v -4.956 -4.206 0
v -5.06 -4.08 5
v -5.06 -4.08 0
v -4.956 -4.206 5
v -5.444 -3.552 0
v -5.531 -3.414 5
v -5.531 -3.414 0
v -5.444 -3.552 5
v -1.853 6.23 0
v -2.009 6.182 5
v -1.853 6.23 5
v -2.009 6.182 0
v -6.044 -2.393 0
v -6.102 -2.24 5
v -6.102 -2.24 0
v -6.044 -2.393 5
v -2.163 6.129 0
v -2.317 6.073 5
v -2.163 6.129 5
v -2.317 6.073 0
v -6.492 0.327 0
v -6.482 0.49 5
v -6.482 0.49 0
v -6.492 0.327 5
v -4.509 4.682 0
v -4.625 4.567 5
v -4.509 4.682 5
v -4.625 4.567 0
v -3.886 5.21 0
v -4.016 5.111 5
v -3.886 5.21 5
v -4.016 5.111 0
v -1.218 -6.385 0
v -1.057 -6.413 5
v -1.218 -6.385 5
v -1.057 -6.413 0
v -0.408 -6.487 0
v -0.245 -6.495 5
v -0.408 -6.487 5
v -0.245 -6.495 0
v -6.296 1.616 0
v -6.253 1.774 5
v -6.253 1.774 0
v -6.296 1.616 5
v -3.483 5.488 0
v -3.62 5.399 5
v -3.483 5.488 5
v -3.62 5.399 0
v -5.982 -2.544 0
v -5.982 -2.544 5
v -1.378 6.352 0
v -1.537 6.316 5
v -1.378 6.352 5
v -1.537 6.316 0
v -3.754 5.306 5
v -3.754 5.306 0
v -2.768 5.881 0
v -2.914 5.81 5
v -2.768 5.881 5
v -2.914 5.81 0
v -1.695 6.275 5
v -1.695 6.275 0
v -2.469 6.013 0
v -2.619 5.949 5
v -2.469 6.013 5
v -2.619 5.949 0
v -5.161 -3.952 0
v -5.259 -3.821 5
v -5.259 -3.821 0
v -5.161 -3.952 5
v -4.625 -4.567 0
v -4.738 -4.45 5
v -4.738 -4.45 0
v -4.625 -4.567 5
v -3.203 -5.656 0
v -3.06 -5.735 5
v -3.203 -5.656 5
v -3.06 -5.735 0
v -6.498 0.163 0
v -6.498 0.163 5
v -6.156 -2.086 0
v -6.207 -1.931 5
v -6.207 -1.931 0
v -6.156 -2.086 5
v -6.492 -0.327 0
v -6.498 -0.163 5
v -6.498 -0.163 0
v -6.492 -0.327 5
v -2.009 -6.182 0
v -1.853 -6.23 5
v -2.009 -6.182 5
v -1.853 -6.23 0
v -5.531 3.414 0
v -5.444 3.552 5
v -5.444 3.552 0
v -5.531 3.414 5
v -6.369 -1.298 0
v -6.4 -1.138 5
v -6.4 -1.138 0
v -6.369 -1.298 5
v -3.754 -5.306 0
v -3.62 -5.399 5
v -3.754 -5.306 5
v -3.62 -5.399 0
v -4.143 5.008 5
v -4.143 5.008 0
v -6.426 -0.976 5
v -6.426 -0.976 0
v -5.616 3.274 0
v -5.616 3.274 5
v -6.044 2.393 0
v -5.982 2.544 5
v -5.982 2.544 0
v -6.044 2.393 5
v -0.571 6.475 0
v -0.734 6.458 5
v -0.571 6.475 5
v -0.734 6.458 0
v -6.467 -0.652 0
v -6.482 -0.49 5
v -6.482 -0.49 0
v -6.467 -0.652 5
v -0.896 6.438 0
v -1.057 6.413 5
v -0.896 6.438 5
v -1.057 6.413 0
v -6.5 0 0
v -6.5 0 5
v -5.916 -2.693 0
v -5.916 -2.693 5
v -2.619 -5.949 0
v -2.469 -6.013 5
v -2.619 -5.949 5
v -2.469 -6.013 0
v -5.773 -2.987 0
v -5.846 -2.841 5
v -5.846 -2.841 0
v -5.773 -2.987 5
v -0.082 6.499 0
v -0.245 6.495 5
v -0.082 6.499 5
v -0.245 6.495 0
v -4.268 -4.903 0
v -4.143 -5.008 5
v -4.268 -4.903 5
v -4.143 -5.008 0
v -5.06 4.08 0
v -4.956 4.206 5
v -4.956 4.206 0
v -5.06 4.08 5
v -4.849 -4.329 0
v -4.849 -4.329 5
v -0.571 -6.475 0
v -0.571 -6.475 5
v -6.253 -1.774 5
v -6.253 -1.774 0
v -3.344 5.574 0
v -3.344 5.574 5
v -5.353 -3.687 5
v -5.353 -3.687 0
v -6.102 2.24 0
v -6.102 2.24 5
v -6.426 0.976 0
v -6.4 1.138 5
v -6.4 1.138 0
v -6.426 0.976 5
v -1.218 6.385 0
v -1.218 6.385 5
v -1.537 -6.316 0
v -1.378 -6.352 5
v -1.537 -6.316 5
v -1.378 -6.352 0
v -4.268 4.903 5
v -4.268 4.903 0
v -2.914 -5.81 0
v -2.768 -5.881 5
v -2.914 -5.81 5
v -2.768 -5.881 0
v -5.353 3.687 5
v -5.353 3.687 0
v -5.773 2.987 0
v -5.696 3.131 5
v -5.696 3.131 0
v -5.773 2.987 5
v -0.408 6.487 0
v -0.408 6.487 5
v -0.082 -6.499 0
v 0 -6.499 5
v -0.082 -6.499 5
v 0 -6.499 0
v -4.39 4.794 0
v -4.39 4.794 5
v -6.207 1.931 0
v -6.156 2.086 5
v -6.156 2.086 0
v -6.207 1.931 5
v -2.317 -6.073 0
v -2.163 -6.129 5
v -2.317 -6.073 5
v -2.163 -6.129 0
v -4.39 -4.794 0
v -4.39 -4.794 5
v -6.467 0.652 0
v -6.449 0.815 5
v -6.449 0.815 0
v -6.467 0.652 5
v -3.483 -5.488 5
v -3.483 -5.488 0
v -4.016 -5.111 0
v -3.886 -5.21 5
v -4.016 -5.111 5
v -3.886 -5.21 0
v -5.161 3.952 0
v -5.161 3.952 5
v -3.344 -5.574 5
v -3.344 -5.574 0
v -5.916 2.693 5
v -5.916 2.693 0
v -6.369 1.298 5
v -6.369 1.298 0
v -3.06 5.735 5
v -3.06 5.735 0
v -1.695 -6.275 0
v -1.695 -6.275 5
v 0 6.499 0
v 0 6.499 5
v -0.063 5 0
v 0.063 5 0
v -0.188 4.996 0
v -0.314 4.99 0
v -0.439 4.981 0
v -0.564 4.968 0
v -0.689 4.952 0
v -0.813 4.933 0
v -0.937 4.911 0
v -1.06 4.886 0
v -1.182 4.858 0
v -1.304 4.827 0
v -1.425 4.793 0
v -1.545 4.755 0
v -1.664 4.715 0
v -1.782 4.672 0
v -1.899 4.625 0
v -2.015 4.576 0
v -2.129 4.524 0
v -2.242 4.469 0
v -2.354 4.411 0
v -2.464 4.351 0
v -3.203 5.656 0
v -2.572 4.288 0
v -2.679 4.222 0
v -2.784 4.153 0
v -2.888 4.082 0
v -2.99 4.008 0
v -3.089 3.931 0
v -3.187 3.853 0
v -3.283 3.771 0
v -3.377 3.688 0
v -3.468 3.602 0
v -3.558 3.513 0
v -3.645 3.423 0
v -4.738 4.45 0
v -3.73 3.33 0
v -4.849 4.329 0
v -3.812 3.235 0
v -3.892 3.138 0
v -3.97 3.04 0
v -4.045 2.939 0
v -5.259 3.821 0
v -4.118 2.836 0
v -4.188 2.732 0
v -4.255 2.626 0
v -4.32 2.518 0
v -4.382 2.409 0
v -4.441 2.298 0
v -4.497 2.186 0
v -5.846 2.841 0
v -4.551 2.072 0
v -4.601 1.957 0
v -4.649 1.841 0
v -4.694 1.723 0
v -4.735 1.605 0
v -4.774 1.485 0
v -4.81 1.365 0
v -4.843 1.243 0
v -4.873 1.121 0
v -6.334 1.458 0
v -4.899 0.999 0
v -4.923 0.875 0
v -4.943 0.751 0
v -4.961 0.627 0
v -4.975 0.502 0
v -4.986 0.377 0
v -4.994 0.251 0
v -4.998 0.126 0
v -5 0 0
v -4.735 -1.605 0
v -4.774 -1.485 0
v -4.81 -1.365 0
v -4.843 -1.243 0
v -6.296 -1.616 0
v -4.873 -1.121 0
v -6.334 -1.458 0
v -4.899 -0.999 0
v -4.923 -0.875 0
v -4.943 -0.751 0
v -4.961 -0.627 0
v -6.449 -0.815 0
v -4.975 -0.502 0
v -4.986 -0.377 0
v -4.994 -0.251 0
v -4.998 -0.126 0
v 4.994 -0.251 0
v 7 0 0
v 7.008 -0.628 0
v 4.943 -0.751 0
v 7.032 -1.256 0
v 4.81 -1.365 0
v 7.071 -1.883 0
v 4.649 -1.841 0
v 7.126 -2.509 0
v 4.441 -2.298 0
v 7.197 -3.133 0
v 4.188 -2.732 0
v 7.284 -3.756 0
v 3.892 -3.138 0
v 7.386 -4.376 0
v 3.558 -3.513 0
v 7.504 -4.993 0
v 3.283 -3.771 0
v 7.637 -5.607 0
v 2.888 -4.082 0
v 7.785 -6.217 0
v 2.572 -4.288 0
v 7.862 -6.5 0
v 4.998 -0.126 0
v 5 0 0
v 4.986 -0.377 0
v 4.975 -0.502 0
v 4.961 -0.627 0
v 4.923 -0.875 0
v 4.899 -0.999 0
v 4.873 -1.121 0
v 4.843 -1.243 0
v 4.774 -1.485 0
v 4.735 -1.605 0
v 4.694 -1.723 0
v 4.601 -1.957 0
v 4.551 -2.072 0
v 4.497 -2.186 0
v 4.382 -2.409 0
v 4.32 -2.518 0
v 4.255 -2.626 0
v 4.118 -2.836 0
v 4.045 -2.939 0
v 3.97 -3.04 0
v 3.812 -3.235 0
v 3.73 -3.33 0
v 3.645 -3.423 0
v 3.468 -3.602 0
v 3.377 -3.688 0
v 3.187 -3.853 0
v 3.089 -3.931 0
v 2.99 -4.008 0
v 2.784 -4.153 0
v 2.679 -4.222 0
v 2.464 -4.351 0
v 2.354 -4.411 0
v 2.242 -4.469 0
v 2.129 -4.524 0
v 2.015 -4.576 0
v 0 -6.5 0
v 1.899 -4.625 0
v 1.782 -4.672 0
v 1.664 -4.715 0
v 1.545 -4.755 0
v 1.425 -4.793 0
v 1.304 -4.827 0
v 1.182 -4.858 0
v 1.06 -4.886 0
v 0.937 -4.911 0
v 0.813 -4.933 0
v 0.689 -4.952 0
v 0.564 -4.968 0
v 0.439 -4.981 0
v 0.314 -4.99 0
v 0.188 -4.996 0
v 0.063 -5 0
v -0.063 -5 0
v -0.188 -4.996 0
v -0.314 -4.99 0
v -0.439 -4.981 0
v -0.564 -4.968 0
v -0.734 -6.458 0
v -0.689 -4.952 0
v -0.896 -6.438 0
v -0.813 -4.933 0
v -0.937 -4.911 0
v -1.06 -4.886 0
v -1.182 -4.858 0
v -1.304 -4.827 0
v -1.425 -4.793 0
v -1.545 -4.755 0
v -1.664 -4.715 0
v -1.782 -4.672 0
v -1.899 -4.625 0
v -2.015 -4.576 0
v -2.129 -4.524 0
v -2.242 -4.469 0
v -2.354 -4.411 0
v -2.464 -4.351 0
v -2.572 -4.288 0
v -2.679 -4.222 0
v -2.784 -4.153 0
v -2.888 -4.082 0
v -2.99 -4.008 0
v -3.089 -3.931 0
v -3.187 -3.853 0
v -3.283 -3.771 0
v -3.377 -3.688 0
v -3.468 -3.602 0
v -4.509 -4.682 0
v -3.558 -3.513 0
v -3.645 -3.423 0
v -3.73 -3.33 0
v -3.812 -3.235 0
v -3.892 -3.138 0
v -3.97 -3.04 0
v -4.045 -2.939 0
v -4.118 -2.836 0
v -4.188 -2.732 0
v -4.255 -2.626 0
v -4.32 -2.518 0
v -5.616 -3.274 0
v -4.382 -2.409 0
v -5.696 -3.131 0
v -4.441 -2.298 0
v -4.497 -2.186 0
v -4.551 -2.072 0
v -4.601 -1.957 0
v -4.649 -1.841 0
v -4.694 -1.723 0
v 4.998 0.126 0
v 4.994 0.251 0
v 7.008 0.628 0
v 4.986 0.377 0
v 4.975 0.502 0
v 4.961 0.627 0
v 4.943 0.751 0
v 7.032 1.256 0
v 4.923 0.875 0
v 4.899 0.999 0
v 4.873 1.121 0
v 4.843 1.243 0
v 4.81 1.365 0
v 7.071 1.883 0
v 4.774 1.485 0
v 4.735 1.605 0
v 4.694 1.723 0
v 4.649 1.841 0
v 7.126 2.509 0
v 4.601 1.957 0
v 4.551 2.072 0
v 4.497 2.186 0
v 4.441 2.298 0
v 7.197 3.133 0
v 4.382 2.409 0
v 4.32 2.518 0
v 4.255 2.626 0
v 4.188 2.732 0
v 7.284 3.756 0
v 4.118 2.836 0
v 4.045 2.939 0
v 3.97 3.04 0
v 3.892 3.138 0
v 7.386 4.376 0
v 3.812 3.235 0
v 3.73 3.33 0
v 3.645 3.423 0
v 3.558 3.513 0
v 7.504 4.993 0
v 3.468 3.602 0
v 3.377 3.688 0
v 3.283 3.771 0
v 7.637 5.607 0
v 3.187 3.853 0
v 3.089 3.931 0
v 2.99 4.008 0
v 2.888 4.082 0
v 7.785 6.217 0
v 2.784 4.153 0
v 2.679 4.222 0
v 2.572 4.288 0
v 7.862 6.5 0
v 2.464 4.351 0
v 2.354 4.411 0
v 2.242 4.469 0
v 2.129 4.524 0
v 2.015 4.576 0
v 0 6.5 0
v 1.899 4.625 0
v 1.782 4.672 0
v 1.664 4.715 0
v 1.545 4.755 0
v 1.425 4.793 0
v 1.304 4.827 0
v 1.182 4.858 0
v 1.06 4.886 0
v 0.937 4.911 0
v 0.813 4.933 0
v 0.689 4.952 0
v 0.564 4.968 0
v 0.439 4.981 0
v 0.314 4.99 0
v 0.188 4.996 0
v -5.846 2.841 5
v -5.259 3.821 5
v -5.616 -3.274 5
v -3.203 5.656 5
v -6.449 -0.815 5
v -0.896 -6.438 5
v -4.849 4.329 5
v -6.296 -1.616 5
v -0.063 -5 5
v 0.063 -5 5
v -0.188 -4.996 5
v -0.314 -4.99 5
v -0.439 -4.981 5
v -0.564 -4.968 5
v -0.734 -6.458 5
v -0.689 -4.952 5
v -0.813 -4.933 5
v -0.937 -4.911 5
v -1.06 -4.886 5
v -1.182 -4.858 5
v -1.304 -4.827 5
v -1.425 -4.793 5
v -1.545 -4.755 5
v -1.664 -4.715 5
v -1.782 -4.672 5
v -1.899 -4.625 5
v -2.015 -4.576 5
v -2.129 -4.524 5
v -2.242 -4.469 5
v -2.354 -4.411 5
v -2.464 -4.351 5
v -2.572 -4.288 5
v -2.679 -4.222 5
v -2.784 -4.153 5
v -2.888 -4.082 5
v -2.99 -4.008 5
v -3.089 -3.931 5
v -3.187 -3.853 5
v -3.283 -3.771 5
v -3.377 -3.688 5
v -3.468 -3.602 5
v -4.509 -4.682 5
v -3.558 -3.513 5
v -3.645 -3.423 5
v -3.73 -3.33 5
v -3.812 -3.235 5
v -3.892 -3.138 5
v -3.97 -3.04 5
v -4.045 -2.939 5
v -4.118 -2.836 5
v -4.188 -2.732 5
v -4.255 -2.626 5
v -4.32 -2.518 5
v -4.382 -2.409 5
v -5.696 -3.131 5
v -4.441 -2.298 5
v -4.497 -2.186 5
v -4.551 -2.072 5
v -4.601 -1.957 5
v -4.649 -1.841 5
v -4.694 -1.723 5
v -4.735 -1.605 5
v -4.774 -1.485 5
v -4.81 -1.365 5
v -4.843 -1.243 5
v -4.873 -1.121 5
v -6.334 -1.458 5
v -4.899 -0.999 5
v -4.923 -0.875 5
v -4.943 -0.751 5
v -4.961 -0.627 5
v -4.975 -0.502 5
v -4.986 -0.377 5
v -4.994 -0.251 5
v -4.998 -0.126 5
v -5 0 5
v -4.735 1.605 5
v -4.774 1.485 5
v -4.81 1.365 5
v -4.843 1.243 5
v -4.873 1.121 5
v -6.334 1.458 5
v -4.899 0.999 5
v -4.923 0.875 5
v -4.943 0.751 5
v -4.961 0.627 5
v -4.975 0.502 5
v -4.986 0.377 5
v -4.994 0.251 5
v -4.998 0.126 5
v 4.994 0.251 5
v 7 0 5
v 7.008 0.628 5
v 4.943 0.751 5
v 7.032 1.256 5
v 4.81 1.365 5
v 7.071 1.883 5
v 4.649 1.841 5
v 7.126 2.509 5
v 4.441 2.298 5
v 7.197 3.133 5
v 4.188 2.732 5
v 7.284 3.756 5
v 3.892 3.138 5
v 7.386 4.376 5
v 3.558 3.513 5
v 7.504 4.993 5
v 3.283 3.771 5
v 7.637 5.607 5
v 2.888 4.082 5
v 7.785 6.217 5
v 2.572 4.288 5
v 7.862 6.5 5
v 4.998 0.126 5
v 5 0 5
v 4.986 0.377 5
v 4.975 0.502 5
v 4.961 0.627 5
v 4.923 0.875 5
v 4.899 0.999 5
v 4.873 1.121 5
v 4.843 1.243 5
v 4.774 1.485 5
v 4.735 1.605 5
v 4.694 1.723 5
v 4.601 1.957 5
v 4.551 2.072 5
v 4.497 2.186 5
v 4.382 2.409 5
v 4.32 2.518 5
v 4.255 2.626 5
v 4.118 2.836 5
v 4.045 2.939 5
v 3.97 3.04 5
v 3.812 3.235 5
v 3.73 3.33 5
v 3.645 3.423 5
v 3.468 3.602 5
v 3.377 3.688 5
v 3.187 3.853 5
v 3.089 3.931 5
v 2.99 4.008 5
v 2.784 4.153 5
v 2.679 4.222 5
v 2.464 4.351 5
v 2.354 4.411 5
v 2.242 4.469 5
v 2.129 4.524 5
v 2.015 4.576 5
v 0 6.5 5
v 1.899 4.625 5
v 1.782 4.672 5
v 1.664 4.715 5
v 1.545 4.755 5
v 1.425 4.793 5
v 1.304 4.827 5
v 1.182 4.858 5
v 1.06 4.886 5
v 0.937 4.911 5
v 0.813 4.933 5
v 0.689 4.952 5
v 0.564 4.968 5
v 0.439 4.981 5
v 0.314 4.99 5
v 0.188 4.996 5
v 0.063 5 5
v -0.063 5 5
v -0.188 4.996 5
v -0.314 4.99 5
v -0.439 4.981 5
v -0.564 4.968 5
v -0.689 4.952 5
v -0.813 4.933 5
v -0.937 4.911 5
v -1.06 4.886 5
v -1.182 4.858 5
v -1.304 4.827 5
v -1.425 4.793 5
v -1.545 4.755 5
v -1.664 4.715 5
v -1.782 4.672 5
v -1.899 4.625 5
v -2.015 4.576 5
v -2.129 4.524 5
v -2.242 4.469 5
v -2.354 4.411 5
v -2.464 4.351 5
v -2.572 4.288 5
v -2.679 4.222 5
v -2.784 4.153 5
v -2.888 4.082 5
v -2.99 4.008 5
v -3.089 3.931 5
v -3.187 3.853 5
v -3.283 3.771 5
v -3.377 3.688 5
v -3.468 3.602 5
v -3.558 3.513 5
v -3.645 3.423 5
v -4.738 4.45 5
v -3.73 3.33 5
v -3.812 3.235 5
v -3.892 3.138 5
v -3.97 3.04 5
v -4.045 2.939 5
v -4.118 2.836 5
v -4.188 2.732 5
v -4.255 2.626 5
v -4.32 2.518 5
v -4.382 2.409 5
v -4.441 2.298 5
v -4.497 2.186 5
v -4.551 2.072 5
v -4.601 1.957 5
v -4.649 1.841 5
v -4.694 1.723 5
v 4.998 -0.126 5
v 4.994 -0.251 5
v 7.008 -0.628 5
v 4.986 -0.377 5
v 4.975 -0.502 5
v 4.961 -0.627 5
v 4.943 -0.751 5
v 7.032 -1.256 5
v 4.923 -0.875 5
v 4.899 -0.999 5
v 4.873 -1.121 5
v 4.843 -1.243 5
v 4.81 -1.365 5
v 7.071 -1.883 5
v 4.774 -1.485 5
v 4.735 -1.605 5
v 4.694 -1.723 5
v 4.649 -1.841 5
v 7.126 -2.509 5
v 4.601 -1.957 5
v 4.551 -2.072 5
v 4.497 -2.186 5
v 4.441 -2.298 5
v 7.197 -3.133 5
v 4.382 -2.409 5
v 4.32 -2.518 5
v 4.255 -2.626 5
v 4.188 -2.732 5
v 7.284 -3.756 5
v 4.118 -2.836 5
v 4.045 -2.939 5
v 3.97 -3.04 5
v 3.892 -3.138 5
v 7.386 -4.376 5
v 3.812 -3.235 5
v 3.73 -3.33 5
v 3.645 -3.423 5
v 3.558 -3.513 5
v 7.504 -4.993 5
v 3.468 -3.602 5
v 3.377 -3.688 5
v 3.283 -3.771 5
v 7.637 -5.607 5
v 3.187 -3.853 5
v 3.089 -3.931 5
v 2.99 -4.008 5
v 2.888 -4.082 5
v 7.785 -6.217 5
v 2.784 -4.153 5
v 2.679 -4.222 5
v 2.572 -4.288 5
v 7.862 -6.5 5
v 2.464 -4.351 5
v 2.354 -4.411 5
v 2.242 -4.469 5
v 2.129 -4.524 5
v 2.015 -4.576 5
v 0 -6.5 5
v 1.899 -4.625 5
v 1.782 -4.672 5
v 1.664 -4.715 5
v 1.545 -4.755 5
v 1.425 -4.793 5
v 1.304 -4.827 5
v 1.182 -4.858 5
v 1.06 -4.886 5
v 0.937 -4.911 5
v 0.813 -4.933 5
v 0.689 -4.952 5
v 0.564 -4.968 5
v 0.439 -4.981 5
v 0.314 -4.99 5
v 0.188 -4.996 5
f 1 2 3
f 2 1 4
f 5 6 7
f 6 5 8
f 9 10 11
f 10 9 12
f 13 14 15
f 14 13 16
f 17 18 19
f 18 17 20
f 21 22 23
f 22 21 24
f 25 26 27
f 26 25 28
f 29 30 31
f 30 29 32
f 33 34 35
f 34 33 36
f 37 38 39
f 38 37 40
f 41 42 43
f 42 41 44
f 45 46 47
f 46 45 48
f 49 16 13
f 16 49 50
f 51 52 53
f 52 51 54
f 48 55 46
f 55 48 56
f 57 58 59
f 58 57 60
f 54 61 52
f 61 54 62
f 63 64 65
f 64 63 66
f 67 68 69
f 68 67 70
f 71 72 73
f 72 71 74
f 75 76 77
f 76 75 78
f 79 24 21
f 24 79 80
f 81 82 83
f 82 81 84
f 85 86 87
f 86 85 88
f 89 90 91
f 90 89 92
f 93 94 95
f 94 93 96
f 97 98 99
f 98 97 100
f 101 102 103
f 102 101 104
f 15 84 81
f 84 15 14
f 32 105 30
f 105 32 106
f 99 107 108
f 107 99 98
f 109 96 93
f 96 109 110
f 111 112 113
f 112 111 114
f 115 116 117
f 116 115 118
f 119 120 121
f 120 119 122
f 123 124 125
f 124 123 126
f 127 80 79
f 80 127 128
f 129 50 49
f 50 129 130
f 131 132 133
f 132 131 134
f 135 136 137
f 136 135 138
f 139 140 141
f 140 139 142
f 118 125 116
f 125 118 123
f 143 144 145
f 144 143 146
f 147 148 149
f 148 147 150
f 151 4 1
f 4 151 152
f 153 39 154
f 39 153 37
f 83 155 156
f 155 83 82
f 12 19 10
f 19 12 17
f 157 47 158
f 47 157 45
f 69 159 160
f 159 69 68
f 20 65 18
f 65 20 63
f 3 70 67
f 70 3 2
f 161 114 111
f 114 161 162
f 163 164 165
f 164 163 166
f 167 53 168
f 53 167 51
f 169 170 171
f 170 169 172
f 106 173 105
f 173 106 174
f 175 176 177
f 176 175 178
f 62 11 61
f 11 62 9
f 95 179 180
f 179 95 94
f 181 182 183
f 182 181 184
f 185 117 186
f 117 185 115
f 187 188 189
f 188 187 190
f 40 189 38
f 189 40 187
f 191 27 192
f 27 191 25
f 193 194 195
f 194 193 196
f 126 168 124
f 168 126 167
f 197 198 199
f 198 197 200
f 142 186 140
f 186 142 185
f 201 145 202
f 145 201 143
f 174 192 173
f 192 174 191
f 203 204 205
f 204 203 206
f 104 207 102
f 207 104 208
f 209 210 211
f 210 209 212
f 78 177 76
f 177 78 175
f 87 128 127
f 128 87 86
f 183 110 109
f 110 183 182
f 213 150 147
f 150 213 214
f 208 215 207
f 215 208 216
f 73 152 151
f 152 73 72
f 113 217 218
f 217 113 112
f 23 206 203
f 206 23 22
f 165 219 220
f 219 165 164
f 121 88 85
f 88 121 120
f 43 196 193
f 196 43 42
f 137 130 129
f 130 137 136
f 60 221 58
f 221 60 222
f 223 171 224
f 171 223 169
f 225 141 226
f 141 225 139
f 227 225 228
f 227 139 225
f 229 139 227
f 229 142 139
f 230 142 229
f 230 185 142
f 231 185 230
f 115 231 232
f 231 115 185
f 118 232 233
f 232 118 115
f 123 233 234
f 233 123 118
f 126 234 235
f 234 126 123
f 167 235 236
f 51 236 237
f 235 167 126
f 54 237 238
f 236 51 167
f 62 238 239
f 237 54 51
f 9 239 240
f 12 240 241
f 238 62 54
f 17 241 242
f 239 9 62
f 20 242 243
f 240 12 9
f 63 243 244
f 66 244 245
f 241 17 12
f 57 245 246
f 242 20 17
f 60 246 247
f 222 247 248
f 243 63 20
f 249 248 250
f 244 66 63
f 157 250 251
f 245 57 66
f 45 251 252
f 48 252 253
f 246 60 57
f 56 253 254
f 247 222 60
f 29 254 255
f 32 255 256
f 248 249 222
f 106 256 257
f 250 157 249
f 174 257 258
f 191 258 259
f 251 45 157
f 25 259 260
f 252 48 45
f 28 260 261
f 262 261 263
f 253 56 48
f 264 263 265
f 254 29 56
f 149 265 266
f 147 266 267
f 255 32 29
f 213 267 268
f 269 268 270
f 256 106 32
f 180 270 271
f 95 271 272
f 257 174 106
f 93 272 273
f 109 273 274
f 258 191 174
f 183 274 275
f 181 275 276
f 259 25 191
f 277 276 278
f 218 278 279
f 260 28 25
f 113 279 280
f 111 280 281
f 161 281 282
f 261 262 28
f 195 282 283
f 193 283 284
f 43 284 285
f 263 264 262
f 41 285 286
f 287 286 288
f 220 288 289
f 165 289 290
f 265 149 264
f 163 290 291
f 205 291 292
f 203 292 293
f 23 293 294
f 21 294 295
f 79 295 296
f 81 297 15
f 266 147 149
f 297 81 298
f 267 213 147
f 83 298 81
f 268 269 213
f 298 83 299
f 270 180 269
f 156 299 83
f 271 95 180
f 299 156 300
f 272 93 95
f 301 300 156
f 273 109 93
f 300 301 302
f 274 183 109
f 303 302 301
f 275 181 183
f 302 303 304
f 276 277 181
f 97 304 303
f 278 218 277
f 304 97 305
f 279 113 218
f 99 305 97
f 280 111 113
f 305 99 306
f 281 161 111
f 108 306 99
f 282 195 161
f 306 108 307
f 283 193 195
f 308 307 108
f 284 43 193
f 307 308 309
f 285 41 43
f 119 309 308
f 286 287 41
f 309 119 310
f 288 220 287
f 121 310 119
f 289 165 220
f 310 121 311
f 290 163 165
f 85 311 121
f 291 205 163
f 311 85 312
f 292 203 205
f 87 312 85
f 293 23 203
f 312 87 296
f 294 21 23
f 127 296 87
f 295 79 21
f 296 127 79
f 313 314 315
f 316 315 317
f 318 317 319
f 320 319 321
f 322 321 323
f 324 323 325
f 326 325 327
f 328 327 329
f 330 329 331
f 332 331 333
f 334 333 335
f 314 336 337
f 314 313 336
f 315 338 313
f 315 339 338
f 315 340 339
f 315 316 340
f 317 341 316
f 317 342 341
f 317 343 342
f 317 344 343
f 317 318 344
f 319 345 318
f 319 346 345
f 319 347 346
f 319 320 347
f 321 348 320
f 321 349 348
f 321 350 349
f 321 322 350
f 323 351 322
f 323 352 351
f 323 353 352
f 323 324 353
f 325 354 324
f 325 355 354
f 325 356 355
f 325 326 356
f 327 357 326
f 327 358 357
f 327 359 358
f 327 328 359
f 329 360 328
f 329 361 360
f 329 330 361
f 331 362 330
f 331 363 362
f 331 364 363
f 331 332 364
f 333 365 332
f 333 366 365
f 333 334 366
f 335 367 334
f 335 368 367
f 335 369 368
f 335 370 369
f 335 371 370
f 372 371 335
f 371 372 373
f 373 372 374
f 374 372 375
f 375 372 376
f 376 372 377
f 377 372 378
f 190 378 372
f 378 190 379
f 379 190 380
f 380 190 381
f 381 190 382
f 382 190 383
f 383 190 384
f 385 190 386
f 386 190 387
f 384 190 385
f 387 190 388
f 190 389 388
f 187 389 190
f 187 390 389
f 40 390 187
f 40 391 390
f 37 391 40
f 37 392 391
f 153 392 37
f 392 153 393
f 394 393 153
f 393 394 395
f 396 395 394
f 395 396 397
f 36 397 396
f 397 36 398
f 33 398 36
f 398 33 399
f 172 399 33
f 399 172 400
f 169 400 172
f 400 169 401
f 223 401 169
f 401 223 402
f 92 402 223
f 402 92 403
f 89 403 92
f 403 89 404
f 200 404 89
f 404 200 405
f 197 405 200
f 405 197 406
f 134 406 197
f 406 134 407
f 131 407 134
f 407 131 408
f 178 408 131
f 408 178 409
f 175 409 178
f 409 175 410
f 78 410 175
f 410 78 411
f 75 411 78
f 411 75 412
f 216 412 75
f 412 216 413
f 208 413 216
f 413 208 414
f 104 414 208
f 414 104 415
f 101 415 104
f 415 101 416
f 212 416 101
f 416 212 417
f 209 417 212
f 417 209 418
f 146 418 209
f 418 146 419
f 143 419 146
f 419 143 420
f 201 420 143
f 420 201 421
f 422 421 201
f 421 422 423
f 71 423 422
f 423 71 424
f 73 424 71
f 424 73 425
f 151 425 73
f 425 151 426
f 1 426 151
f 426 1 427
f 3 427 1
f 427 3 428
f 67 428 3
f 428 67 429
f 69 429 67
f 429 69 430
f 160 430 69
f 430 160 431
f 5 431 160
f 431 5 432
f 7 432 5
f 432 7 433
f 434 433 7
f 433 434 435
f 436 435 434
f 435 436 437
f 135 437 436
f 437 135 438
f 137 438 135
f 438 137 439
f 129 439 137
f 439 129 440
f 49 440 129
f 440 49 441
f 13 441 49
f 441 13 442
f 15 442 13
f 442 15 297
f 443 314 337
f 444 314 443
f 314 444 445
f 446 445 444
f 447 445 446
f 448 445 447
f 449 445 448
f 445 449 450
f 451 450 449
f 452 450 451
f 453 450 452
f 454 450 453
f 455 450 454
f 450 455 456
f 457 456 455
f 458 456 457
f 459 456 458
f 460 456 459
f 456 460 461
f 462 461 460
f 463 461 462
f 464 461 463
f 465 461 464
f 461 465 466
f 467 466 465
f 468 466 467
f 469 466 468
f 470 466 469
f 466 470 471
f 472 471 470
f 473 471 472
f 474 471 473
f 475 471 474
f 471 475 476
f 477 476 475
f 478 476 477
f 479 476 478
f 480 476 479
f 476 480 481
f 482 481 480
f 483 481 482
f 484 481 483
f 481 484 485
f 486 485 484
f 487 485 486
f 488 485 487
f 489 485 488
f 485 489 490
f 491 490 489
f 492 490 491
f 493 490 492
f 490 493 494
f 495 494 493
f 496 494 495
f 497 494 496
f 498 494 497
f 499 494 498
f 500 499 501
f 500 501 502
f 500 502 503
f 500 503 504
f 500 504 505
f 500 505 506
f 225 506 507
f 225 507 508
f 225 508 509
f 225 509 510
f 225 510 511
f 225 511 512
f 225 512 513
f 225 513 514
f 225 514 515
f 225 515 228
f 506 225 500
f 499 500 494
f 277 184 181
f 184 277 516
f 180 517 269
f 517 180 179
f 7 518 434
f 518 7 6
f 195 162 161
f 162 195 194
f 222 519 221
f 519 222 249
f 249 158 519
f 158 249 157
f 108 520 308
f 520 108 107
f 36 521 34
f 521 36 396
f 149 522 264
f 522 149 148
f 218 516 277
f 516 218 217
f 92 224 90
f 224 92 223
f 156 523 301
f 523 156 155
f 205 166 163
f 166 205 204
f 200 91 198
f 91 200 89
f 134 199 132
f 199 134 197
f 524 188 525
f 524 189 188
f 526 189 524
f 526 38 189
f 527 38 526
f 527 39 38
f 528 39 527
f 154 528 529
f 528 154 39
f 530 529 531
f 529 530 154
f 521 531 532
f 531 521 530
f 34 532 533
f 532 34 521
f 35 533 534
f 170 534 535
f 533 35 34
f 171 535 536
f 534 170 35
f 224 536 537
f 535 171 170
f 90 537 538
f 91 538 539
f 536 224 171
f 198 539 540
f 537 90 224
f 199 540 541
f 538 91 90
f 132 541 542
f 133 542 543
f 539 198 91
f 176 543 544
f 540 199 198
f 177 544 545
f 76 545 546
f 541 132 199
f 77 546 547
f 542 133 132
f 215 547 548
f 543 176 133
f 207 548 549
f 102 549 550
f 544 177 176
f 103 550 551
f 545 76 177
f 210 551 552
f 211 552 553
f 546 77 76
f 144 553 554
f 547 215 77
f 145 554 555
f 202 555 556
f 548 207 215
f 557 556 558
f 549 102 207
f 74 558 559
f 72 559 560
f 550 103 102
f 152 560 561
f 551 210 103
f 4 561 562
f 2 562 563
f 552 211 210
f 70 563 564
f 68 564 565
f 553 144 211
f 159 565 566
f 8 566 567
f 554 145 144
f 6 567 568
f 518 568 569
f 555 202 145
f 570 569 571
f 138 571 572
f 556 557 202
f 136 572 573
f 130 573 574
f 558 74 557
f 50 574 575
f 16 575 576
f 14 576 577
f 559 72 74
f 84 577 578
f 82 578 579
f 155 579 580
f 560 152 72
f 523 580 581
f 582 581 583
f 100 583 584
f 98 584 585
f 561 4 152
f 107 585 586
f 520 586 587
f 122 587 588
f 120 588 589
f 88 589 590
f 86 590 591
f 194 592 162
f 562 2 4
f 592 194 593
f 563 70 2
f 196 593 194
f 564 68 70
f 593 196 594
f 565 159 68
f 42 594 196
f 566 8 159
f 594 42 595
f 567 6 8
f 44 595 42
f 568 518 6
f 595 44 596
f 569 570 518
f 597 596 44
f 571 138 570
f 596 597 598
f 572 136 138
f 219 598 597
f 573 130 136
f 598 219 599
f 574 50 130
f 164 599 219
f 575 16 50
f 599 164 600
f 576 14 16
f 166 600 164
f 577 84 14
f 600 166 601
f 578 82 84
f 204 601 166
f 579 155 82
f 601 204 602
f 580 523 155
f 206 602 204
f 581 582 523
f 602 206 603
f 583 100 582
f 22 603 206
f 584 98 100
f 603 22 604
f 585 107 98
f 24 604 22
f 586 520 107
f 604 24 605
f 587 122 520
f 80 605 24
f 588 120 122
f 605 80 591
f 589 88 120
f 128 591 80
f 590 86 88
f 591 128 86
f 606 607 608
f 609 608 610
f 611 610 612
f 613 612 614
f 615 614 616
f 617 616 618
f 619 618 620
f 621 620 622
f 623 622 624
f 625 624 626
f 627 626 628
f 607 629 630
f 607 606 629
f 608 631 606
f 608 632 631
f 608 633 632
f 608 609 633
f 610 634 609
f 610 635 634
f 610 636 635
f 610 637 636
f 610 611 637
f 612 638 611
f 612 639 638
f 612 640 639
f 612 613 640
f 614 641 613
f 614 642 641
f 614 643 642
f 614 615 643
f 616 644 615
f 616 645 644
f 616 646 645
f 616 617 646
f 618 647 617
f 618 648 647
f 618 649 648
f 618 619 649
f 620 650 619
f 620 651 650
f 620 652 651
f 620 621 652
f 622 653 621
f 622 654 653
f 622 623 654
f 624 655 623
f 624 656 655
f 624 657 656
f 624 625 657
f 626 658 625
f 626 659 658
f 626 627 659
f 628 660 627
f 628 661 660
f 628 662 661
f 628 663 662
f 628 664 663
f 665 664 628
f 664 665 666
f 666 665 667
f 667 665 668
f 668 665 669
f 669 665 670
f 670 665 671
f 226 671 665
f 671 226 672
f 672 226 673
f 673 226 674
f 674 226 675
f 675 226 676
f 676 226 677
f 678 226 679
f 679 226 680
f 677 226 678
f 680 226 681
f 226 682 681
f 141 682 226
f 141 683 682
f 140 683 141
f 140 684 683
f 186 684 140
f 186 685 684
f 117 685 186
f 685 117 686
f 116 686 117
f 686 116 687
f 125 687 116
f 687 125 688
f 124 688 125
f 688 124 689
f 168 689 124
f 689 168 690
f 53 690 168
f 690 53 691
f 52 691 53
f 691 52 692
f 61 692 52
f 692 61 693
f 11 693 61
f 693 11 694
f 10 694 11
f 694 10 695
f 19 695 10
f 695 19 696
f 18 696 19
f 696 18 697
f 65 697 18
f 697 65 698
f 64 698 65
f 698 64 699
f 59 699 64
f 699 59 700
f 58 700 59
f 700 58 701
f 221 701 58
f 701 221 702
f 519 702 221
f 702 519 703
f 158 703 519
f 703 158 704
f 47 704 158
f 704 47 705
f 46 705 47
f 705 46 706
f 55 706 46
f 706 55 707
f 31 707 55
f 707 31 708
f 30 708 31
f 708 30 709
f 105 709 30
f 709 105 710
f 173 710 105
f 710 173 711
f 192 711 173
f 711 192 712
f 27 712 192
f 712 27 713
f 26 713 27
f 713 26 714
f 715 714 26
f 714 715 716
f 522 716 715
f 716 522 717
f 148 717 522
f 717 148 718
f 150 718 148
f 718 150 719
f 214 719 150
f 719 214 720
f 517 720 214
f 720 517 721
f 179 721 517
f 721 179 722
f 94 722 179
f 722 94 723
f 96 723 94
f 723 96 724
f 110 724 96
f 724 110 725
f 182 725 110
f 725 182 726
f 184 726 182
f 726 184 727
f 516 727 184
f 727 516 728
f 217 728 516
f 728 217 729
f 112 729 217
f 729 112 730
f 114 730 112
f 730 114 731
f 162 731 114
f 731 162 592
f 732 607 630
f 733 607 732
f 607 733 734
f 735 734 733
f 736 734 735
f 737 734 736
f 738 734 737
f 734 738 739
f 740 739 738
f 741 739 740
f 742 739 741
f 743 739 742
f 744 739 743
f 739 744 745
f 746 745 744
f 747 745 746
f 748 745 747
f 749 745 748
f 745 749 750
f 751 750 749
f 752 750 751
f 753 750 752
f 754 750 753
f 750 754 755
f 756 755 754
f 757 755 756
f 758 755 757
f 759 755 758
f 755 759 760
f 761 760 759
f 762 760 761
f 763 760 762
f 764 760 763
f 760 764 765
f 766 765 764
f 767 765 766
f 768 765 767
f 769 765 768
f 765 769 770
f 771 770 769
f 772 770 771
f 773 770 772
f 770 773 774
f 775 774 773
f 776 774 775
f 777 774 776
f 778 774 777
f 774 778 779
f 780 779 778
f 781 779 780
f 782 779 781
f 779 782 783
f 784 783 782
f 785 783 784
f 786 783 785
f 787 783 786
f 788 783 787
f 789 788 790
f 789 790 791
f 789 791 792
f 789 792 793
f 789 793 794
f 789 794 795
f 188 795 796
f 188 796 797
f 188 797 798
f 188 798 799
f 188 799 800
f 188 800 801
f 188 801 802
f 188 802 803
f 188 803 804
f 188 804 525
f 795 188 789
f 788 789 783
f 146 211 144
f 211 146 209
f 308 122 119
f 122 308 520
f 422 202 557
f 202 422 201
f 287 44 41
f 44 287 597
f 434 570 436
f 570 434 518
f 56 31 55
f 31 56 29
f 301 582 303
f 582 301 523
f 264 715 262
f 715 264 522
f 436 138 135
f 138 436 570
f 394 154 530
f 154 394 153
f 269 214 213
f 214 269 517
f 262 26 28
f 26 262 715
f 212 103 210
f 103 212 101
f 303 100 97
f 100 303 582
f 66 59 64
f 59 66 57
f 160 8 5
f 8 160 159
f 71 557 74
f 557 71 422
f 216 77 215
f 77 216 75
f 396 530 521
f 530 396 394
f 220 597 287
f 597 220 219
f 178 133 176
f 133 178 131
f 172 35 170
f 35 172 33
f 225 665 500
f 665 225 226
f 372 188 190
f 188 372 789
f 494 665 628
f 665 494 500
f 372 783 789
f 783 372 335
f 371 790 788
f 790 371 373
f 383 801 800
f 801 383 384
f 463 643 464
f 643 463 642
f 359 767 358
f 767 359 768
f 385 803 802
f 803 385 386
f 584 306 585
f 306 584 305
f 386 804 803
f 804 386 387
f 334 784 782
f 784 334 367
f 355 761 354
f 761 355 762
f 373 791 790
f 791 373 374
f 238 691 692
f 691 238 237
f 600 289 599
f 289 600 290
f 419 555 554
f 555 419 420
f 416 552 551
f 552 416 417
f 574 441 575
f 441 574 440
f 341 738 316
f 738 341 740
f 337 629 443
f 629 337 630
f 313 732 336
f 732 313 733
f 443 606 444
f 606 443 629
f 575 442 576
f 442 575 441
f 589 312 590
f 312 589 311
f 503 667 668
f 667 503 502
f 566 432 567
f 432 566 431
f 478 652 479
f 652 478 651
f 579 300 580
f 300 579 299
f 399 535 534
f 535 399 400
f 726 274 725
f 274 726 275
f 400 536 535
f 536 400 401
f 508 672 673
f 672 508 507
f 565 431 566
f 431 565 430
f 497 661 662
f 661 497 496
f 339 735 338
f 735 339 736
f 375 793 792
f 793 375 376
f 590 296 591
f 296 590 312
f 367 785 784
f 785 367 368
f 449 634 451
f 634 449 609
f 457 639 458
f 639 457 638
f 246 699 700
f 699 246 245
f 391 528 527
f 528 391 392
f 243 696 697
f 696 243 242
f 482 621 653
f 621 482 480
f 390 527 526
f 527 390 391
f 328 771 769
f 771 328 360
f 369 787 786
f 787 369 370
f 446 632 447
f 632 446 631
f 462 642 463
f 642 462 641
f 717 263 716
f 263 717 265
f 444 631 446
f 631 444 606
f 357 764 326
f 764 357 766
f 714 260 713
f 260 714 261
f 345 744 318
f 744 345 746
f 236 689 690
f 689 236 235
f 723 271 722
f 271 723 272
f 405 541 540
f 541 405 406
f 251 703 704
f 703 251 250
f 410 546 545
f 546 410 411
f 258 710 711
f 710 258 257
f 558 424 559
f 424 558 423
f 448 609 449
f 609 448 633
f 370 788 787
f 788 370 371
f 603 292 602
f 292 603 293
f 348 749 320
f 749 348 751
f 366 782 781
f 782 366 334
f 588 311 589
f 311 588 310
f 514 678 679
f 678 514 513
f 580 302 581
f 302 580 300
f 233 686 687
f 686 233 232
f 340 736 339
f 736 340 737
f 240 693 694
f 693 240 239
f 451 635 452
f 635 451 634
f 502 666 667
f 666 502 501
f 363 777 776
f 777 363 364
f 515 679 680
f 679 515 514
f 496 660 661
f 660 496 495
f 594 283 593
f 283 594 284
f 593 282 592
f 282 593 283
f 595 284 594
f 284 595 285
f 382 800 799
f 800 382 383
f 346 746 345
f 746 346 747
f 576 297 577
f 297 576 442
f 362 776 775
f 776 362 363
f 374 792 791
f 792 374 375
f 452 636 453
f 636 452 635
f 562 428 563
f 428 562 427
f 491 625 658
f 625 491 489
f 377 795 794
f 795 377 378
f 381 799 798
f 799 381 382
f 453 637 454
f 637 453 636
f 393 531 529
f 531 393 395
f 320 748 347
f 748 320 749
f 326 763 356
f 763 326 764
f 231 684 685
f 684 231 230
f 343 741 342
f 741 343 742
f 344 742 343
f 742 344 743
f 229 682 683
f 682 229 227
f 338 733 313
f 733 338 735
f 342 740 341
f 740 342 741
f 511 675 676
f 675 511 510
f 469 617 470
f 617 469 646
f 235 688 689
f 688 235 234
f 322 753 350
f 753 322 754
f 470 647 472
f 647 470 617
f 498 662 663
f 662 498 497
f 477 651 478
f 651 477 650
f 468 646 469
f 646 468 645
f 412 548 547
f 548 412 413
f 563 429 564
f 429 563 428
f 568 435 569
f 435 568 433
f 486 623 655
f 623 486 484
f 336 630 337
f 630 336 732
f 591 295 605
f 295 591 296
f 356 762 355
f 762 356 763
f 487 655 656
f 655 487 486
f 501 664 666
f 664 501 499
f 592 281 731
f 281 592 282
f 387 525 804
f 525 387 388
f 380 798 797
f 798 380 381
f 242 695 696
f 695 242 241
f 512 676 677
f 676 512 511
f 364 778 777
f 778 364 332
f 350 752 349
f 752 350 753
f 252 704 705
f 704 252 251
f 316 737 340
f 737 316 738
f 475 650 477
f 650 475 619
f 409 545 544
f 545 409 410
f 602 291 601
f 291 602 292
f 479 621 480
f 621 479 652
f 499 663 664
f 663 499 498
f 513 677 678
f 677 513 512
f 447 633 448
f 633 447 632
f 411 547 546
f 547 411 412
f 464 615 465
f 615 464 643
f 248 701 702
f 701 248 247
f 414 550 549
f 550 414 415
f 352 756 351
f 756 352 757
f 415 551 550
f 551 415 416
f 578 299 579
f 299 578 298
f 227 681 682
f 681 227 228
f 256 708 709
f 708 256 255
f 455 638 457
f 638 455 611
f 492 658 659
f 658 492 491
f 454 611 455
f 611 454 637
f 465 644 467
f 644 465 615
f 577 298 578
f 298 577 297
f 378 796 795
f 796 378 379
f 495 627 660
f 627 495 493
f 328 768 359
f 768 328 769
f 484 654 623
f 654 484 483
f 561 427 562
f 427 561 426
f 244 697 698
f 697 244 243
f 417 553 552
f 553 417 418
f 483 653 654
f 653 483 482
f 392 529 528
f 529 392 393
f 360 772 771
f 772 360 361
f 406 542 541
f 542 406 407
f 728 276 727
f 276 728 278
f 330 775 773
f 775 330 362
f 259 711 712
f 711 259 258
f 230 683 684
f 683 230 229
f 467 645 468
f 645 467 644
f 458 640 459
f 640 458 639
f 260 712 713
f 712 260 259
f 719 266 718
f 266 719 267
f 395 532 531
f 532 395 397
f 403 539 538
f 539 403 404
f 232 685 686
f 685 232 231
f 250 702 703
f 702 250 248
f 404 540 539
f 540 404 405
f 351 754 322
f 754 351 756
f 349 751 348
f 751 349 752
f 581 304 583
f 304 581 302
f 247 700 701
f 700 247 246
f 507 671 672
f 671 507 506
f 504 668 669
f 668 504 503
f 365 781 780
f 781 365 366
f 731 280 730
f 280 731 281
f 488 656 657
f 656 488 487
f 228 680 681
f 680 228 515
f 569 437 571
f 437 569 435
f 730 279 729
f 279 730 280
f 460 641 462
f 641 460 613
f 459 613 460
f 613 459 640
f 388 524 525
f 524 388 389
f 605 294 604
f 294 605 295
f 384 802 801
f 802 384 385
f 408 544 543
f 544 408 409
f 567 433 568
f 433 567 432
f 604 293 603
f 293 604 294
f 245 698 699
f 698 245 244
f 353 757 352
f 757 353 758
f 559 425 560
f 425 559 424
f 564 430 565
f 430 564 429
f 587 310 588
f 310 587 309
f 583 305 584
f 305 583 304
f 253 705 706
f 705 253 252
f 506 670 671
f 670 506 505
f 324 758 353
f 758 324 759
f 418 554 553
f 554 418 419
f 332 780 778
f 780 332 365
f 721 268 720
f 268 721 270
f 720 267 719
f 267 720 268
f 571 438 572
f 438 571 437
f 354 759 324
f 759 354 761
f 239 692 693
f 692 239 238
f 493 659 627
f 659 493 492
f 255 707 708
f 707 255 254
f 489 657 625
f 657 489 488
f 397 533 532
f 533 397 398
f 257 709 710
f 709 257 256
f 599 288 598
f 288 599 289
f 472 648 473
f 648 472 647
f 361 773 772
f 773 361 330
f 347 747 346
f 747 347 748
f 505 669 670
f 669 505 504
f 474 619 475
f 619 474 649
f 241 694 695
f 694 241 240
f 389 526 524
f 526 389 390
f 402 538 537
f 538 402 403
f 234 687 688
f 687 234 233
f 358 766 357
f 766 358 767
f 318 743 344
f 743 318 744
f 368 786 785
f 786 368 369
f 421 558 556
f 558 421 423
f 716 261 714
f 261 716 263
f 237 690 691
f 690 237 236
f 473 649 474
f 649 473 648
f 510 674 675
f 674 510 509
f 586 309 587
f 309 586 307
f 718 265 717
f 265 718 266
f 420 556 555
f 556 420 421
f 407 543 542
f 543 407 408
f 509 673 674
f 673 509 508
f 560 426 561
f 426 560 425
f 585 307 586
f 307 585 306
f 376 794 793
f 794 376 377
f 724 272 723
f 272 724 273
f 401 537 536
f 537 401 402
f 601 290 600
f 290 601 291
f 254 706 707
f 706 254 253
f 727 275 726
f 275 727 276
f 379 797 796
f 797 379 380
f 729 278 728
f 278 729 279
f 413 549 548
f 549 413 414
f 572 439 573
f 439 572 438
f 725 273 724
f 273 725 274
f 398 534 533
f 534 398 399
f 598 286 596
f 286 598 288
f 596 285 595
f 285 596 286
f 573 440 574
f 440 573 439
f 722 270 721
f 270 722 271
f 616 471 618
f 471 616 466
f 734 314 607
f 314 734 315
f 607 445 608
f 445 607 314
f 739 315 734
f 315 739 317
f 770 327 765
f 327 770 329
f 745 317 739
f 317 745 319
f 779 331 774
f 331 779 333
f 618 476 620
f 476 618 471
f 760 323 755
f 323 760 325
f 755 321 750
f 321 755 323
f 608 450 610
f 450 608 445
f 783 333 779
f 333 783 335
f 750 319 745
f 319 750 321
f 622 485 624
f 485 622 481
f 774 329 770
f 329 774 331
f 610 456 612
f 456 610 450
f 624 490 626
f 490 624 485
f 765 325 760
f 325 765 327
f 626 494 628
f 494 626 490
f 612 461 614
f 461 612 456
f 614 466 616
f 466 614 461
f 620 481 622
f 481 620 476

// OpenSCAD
$fn = 250;

inner_diam = 10;
outer_diam = 13;
length = 5;

difference() {
    union() {
        cylinder(h=length, r=outer_diam/2);
        translate([0,-outer_diam/2,0])
        cube([outer_diam, outer_diam, length]);
    }
    translate([0,0,-1])
    cylinder(h=length + 2, r=inner_diam/2);
    translate([32,0,-1])
    cylinder(h=length + 2, r=25);
}
